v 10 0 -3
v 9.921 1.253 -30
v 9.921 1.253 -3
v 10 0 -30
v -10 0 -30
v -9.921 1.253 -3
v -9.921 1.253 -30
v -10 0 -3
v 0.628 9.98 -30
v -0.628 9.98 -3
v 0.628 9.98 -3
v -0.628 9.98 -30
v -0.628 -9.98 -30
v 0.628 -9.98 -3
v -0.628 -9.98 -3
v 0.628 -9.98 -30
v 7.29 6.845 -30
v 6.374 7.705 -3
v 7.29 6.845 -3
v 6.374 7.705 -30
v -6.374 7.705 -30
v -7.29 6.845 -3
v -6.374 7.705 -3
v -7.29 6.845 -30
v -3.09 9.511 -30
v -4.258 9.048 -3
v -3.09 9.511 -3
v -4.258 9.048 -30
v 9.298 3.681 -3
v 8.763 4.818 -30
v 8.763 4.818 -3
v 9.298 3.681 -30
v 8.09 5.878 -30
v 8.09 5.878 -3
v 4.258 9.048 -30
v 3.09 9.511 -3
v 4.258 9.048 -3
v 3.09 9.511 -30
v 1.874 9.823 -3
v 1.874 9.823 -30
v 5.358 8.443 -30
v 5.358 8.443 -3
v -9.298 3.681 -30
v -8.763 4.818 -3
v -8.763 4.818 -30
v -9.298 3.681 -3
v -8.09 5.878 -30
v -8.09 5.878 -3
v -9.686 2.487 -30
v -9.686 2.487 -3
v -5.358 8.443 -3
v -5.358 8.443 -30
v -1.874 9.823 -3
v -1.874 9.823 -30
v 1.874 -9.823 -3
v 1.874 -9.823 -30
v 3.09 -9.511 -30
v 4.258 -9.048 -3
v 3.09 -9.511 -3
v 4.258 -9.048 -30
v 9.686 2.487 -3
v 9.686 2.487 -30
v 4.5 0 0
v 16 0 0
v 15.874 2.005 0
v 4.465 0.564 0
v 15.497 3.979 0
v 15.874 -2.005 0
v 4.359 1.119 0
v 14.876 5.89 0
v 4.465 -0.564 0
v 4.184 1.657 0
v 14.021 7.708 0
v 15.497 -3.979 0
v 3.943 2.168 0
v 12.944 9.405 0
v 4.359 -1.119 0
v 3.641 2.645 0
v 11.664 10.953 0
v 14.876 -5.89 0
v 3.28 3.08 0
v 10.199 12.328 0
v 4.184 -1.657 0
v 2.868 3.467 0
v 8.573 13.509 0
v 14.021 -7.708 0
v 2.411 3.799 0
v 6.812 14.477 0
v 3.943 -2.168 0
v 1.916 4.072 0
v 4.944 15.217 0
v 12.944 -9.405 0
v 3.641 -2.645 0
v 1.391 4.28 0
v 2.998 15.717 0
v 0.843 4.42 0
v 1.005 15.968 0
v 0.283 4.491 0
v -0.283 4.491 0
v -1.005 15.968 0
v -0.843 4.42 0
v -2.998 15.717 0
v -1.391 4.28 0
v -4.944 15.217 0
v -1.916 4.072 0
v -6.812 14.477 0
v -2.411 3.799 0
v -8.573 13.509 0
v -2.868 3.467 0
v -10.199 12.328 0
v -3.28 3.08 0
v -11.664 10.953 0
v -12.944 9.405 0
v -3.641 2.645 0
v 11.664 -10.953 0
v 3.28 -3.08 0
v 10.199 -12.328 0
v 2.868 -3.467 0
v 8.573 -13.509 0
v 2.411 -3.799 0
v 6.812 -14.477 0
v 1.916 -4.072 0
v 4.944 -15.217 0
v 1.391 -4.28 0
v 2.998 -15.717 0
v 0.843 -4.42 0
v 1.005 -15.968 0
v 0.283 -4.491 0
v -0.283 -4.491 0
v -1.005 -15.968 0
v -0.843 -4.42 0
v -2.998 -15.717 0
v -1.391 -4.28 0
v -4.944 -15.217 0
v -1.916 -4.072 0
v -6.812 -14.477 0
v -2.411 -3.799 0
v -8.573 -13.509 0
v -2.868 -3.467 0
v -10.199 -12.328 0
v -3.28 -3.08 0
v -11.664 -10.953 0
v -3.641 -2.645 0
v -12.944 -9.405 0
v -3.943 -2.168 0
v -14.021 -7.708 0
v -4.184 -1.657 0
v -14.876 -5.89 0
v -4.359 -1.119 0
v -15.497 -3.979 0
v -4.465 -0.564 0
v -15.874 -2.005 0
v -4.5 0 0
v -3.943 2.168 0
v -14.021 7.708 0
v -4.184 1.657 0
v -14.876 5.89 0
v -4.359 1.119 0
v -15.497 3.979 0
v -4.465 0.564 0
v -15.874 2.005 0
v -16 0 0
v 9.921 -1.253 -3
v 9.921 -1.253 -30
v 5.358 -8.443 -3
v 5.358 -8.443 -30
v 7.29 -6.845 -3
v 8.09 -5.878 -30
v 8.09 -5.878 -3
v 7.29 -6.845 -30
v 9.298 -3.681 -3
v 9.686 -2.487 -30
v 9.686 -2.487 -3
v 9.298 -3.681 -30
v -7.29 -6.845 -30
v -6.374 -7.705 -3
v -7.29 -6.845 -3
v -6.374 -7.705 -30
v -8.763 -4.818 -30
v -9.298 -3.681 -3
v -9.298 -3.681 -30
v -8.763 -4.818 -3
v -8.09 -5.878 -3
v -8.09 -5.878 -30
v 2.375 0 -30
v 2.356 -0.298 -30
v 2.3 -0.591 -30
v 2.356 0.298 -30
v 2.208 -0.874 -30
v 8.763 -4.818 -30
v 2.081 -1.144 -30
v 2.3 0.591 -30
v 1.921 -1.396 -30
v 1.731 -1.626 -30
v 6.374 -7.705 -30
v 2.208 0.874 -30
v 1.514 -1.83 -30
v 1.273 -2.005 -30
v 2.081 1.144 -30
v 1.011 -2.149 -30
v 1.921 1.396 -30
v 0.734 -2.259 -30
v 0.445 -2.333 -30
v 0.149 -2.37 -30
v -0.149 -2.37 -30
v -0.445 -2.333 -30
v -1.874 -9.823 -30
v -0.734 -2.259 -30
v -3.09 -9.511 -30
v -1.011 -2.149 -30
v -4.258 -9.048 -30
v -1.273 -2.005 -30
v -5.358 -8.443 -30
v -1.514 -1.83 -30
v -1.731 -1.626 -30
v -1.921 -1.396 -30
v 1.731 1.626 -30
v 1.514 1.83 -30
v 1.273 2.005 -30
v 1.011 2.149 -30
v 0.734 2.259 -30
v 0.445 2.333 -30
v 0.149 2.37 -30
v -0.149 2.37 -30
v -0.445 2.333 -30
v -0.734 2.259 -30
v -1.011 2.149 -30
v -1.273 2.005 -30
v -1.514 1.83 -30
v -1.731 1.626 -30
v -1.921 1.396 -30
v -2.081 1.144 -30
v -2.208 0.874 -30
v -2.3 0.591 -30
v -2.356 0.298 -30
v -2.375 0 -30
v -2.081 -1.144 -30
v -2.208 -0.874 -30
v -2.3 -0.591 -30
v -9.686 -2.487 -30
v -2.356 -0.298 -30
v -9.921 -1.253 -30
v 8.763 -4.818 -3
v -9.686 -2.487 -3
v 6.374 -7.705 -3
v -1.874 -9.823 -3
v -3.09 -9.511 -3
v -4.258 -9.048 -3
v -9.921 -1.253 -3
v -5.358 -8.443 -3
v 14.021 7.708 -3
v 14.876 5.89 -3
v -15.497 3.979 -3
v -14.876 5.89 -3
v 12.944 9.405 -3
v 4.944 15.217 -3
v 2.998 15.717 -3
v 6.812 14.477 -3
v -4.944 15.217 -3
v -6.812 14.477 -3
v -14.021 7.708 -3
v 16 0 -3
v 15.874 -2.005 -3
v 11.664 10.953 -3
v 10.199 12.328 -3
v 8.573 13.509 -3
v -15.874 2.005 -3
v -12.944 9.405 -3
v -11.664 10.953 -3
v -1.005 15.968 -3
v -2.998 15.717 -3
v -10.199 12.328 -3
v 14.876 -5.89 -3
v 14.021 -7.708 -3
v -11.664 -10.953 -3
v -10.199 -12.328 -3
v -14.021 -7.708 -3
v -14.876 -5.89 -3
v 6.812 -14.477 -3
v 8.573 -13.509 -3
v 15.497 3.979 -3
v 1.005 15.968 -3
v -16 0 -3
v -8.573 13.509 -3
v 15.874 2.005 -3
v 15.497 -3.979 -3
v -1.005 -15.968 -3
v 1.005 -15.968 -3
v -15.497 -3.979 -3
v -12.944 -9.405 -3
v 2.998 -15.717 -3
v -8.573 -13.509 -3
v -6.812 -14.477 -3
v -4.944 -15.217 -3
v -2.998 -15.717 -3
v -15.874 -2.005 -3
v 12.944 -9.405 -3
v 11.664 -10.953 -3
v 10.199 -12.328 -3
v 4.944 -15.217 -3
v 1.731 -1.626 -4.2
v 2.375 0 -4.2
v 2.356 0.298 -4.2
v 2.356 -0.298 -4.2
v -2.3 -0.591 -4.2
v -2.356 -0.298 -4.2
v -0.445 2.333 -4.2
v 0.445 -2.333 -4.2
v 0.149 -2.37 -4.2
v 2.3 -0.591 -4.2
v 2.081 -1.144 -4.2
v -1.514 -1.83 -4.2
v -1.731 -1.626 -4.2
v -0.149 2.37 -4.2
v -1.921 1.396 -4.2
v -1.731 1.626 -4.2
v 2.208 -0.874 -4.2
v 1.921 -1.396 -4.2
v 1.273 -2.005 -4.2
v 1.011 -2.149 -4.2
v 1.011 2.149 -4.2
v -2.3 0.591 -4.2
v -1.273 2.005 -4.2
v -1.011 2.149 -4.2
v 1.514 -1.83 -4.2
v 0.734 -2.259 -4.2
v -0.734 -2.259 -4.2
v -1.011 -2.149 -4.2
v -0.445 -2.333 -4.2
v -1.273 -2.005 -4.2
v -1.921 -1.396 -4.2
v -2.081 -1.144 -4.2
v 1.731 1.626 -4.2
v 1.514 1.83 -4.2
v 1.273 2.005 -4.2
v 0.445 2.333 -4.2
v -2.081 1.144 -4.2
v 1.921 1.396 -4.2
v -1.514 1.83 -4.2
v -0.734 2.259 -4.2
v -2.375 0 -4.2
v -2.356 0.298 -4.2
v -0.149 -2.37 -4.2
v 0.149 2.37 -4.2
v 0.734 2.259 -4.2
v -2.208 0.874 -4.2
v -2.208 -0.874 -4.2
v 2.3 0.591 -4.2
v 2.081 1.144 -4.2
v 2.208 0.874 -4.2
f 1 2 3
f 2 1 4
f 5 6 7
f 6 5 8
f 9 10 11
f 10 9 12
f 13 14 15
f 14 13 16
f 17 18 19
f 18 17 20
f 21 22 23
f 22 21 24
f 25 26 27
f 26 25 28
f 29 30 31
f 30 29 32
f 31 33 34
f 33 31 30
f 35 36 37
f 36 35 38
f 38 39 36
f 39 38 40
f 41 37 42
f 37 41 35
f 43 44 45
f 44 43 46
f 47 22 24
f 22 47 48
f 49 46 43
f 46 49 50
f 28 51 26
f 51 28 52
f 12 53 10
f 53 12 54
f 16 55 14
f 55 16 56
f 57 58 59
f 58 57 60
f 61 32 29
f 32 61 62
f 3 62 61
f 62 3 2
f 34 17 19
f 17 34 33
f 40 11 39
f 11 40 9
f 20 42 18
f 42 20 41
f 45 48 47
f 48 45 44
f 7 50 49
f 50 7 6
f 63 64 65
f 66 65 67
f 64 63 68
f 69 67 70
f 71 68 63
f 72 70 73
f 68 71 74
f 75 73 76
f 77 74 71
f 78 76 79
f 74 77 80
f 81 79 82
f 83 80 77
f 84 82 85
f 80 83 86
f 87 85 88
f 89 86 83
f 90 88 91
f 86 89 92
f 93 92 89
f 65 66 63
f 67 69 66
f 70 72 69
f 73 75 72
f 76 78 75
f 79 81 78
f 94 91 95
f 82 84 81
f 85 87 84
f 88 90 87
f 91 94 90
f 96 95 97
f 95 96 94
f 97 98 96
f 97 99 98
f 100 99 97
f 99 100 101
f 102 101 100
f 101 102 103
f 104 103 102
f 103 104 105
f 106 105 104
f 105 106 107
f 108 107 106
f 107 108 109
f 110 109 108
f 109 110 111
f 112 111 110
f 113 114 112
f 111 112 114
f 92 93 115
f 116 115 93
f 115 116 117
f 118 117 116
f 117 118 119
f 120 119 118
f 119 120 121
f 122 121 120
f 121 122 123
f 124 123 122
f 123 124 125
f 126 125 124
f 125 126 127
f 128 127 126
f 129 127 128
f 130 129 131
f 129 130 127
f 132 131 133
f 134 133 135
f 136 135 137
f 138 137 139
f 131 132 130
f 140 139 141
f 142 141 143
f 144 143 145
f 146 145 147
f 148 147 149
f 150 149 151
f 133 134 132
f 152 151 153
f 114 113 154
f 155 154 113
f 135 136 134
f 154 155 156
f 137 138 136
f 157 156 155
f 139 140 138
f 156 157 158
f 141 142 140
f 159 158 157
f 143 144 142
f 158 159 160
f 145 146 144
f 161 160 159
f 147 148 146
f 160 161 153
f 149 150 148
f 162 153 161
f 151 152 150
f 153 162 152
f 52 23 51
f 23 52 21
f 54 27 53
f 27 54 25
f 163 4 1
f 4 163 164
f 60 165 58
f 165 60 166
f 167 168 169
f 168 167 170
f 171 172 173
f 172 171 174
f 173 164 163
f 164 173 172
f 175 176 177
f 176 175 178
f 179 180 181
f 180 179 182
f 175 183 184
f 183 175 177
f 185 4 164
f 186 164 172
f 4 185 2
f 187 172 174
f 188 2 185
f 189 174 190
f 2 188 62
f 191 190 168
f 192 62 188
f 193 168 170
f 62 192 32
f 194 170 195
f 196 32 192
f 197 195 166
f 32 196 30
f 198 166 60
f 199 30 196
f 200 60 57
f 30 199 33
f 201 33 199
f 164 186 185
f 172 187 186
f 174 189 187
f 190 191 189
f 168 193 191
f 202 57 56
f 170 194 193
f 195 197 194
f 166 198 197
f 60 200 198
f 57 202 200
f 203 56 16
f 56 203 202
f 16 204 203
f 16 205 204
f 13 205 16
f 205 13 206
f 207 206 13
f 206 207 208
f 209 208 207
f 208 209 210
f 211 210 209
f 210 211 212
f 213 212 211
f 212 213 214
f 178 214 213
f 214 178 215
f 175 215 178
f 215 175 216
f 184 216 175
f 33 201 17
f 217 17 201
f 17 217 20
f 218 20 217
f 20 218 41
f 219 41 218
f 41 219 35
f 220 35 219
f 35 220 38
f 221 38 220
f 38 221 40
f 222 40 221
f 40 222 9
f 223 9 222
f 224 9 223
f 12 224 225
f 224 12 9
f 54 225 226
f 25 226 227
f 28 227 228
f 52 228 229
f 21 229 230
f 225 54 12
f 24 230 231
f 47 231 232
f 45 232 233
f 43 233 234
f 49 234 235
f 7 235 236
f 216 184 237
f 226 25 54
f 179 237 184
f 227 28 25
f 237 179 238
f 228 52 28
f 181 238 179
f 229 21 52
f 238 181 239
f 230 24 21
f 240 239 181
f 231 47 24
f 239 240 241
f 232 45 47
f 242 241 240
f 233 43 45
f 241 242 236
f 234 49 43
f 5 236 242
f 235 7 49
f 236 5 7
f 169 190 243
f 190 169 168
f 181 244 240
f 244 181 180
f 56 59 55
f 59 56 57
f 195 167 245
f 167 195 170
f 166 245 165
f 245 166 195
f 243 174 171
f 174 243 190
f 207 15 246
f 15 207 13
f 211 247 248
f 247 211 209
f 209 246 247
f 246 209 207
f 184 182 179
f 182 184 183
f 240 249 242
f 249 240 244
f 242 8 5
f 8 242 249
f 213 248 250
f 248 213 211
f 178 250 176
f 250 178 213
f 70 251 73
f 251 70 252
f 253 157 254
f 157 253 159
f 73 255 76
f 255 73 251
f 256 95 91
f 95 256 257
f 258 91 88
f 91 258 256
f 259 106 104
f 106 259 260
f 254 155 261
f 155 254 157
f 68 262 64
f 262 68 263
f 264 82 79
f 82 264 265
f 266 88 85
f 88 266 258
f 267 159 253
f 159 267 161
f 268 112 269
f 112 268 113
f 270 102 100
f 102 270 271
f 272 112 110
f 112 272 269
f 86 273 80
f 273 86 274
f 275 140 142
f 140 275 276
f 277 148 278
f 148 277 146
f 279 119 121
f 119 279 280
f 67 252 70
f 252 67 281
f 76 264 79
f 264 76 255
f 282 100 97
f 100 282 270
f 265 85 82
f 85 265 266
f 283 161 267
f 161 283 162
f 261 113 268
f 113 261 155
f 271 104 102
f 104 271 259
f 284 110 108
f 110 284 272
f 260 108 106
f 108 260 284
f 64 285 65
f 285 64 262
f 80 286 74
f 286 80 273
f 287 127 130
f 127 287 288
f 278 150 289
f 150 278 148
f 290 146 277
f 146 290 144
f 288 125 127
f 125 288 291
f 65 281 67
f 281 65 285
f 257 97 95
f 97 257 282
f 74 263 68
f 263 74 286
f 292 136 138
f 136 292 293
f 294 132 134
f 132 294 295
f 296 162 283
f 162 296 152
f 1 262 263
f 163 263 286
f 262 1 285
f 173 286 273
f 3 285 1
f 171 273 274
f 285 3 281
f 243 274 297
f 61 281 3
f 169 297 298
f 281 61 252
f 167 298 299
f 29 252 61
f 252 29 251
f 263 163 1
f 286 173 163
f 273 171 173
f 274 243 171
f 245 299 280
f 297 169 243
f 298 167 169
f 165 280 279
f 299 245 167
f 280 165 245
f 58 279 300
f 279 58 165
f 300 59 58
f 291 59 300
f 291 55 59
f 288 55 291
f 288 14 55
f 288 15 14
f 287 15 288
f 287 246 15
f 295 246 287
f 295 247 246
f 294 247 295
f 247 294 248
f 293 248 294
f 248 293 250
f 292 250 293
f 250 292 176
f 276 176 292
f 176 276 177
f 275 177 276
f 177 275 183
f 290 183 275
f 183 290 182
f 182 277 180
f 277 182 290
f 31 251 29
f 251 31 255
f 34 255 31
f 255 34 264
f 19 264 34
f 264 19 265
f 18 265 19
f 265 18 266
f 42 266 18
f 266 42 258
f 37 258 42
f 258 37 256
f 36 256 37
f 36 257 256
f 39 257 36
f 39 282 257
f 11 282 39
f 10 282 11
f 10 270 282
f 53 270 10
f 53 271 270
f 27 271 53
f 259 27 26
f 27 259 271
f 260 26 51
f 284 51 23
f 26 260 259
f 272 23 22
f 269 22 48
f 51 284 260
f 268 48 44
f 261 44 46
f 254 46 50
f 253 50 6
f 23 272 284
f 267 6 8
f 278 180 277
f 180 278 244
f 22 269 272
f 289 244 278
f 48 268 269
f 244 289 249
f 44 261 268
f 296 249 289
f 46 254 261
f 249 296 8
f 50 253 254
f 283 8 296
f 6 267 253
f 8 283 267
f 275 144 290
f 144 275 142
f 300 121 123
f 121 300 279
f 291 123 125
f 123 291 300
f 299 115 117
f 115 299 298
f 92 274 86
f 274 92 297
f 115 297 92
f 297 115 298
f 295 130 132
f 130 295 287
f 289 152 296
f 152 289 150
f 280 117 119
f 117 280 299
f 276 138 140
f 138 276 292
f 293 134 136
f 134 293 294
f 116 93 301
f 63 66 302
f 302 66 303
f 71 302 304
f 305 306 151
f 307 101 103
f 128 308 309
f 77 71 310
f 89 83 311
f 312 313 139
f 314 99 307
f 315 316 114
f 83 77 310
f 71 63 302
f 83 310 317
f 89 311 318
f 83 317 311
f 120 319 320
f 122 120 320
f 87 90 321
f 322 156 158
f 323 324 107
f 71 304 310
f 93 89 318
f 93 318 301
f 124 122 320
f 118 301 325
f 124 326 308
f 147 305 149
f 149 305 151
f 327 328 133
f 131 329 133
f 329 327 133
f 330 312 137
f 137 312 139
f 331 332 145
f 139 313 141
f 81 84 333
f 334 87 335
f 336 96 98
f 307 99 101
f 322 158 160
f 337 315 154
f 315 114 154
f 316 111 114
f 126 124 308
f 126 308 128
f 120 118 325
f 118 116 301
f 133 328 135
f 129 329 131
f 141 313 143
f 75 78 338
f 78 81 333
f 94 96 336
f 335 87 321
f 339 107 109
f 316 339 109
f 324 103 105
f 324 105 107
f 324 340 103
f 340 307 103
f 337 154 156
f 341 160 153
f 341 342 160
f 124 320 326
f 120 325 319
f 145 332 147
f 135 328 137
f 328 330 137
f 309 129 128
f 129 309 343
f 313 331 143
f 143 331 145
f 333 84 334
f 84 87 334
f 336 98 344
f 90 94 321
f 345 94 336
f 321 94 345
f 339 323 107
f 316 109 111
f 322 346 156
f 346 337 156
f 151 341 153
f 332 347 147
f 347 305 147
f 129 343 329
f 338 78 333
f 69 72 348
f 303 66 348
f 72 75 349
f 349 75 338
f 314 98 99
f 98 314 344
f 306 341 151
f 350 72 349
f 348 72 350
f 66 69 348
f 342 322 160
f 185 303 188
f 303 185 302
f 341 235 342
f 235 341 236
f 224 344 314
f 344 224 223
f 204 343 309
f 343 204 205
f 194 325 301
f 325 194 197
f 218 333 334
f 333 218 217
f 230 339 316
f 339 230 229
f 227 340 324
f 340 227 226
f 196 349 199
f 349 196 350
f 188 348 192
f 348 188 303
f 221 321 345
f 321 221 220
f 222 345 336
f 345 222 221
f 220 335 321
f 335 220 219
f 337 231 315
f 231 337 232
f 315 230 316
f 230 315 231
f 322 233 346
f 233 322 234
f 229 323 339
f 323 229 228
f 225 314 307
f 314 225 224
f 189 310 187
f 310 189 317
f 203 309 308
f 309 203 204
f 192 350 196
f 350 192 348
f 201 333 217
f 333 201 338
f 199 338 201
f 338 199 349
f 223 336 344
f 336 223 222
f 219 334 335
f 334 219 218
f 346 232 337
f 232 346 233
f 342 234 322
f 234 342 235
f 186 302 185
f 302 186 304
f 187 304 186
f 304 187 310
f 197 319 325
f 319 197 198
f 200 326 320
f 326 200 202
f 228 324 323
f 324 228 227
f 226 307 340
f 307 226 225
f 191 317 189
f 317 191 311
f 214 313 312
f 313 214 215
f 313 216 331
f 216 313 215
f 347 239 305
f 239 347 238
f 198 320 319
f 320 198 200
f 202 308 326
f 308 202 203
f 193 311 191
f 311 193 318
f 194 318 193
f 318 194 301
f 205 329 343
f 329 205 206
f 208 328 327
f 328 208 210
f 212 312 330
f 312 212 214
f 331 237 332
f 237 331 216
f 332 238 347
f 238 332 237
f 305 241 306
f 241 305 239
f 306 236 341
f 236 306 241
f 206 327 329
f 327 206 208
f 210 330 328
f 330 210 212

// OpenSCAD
$fn = 50;


difference() {
	union() {
		translate(v = [0, 0, -30.0000000000]) {
			cylinder(h = 30, r = 10.0000000000);
		}
		translate(v = [0, 0, -3.0000000000]) {
			cylinder(h = 3, r = 16.0000000000);
		}
	}
	union() {
		translate(v = [0, 0, 0]) {
			rotate(a = [0, 0, 0]) {
				difference() {
					union() {
						#translate(v = [0, 0, -30.0000000000]) {
							cylinder(h = 30, r = 2.2500000000);
						}
						#translate(v = [0, 0, -4.2000000000]) {
							cylinder(h = 4.2000000000, r = 10.0000000000, r1 = 2.3750000000, r2 = 4.5000000000);
						}
						#translate(v = [0, 0, -30.0000000000]) {
							cylinder(h = 30, r = 2.3750000000);
						}
						#translate(v = [0, 0, -30.0000000000]) {
							cylinder(h = 30, r = 2.2500000000);
						}
					}
					union();
				}
			}
		}
	}
}
